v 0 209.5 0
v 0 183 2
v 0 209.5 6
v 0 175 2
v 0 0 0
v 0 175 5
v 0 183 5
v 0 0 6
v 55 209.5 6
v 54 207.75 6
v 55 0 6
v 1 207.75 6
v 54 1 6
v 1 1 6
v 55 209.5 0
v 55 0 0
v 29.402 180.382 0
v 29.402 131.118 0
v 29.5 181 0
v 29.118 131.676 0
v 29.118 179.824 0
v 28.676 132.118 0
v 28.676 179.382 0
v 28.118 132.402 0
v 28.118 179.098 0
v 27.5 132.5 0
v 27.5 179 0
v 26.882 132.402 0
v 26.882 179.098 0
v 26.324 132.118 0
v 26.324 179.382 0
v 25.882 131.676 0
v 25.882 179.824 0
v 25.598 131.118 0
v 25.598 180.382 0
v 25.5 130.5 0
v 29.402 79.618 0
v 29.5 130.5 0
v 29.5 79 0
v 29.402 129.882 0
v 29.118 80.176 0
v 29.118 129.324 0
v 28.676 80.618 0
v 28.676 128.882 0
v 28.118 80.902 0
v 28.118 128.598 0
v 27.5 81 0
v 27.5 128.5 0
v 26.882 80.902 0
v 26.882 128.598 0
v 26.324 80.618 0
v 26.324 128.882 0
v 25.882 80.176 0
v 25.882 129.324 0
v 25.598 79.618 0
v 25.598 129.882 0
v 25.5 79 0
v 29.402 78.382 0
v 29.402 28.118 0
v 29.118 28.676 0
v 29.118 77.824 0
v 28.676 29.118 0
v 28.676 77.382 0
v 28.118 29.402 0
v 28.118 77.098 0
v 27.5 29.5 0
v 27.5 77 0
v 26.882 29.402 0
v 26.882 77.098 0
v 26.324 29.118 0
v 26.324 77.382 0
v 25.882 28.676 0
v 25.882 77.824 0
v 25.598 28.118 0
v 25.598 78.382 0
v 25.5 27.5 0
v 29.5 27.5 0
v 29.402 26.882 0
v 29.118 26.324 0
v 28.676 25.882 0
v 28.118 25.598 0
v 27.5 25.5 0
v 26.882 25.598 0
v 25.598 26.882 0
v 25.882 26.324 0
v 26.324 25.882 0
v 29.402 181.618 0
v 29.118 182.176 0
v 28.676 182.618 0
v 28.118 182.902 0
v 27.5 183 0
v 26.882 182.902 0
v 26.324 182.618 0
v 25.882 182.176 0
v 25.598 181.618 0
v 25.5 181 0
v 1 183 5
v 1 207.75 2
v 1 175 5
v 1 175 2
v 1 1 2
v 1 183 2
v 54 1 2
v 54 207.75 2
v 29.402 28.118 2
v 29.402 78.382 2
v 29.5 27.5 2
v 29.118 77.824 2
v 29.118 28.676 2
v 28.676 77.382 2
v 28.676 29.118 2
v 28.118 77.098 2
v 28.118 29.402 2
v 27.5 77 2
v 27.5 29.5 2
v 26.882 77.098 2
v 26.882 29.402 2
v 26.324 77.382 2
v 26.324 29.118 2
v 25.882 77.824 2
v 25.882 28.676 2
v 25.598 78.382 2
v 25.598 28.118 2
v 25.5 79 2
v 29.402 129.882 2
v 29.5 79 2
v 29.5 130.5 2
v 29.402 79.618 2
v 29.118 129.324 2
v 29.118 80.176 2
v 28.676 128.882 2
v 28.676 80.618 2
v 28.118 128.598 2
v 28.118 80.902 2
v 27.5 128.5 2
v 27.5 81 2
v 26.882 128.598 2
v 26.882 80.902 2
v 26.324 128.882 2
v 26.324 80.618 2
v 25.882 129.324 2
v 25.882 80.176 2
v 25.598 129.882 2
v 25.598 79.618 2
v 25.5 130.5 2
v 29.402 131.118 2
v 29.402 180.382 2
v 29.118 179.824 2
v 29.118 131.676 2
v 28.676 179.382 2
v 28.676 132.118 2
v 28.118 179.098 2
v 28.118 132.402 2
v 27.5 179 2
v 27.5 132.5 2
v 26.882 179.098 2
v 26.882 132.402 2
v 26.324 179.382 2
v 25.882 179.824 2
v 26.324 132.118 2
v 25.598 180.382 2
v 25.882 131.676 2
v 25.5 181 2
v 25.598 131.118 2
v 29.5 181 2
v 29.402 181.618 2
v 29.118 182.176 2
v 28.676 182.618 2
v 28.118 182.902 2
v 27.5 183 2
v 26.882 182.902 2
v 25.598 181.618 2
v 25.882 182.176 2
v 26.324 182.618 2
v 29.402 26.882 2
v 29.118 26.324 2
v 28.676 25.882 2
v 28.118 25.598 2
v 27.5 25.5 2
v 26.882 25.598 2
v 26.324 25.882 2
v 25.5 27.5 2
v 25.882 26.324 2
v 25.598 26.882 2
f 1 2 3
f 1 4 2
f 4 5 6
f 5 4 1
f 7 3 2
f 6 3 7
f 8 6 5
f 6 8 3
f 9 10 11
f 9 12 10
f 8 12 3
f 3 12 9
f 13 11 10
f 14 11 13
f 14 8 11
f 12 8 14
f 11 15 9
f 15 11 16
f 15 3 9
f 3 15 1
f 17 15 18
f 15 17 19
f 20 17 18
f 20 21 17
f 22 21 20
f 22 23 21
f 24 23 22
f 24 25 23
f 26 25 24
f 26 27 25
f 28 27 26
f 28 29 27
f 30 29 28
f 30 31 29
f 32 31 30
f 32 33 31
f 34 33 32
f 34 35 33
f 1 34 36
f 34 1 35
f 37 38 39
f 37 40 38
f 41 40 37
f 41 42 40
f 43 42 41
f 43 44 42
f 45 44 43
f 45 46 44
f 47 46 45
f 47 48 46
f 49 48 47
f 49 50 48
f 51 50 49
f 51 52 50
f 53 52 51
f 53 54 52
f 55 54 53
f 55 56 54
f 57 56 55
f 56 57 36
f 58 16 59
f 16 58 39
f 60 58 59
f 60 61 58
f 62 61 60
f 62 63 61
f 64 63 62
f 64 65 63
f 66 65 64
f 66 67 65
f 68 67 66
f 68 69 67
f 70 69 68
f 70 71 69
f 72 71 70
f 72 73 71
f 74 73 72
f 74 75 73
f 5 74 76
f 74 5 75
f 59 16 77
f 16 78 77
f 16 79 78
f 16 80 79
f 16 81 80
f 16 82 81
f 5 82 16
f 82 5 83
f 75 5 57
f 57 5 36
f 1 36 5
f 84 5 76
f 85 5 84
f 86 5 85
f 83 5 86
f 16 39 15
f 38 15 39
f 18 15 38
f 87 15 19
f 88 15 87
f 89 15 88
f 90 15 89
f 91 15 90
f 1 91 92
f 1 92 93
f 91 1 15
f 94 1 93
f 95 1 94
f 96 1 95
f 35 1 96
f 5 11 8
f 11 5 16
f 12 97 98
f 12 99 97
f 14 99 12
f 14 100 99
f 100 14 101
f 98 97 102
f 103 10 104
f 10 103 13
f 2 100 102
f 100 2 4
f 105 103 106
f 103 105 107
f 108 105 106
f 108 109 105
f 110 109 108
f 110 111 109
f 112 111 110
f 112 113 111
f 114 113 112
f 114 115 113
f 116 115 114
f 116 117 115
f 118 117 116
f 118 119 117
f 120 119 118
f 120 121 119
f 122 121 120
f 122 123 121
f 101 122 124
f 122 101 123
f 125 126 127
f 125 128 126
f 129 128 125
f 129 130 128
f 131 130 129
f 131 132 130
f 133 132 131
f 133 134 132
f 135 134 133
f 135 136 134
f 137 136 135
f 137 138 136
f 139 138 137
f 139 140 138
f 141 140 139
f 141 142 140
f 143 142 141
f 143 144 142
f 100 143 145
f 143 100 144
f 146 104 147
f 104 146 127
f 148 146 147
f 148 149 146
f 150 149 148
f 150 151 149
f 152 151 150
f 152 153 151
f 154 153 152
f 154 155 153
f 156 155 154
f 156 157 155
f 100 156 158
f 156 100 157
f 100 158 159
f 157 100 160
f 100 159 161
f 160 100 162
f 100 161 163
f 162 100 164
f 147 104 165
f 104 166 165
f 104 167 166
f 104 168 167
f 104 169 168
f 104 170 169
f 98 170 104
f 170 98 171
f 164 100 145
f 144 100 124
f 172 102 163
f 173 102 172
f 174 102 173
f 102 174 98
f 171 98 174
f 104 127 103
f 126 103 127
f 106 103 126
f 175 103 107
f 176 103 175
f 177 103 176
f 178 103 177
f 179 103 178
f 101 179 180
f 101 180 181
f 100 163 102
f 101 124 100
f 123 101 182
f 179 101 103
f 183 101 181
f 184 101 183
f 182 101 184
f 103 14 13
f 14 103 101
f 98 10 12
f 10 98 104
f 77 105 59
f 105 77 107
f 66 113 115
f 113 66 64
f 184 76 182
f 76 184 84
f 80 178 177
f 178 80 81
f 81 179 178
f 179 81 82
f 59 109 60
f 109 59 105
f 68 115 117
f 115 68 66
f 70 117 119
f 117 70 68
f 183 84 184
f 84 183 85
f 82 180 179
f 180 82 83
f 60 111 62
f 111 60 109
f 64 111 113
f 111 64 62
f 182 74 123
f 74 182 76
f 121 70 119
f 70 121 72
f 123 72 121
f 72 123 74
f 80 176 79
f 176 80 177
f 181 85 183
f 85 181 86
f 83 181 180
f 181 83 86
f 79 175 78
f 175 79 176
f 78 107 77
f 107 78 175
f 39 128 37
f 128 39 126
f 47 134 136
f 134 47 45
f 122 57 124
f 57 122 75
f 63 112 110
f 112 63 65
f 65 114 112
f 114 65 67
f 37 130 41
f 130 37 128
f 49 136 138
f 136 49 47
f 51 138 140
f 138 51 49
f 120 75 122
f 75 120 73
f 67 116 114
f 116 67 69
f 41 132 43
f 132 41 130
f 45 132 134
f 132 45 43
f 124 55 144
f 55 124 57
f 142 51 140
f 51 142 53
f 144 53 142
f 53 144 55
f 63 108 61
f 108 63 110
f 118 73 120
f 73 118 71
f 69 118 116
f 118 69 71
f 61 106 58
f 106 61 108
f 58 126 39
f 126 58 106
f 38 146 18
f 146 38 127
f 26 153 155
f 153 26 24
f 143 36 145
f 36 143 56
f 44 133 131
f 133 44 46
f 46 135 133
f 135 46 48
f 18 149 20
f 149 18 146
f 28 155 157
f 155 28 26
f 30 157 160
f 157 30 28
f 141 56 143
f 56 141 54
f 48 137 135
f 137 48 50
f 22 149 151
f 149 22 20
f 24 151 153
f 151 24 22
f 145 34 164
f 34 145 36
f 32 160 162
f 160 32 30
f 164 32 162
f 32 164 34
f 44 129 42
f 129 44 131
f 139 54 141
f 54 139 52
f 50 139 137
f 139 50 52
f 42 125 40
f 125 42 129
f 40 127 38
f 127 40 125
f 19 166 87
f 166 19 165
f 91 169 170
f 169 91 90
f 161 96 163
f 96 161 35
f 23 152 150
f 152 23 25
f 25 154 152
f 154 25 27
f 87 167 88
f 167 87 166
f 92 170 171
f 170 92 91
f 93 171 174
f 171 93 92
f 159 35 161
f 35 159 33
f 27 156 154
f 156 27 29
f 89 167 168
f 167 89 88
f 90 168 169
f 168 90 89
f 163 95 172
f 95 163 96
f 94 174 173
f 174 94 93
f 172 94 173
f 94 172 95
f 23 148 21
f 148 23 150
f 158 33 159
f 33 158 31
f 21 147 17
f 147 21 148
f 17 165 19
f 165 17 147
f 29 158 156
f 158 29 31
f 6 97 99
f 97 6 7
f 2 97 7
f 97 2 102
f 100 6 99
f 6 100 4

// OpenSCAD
$fn = 20;
wallHeight = 6;
postDiameter = 2;

difference()
{
    cube([55,209.5,wallHeight],false);
    
    //Carve out the cube
    translate([1,1,2]) cube([53,206.75,wallHeight],false);
    
    translate([27.5,27.5,-2]) cylinder(wallHeight,postDiameter,postDiameter);
 
    translate([27.5,79,-2]) cylinder(wallHeight,postDiameter,postDiameter);

    translate([27.5,130.5,-2]) cylinder(wallHeight,postDiameter,postDiameter);

    translate([27.5,181,-2]) cylinder(wallHeight,postDiameter,postDiameter);

    //translate([-2,21,2]) cube([3,8,3],false);
    translate([-2,175,2]) cube([3,8,3],false);
}
